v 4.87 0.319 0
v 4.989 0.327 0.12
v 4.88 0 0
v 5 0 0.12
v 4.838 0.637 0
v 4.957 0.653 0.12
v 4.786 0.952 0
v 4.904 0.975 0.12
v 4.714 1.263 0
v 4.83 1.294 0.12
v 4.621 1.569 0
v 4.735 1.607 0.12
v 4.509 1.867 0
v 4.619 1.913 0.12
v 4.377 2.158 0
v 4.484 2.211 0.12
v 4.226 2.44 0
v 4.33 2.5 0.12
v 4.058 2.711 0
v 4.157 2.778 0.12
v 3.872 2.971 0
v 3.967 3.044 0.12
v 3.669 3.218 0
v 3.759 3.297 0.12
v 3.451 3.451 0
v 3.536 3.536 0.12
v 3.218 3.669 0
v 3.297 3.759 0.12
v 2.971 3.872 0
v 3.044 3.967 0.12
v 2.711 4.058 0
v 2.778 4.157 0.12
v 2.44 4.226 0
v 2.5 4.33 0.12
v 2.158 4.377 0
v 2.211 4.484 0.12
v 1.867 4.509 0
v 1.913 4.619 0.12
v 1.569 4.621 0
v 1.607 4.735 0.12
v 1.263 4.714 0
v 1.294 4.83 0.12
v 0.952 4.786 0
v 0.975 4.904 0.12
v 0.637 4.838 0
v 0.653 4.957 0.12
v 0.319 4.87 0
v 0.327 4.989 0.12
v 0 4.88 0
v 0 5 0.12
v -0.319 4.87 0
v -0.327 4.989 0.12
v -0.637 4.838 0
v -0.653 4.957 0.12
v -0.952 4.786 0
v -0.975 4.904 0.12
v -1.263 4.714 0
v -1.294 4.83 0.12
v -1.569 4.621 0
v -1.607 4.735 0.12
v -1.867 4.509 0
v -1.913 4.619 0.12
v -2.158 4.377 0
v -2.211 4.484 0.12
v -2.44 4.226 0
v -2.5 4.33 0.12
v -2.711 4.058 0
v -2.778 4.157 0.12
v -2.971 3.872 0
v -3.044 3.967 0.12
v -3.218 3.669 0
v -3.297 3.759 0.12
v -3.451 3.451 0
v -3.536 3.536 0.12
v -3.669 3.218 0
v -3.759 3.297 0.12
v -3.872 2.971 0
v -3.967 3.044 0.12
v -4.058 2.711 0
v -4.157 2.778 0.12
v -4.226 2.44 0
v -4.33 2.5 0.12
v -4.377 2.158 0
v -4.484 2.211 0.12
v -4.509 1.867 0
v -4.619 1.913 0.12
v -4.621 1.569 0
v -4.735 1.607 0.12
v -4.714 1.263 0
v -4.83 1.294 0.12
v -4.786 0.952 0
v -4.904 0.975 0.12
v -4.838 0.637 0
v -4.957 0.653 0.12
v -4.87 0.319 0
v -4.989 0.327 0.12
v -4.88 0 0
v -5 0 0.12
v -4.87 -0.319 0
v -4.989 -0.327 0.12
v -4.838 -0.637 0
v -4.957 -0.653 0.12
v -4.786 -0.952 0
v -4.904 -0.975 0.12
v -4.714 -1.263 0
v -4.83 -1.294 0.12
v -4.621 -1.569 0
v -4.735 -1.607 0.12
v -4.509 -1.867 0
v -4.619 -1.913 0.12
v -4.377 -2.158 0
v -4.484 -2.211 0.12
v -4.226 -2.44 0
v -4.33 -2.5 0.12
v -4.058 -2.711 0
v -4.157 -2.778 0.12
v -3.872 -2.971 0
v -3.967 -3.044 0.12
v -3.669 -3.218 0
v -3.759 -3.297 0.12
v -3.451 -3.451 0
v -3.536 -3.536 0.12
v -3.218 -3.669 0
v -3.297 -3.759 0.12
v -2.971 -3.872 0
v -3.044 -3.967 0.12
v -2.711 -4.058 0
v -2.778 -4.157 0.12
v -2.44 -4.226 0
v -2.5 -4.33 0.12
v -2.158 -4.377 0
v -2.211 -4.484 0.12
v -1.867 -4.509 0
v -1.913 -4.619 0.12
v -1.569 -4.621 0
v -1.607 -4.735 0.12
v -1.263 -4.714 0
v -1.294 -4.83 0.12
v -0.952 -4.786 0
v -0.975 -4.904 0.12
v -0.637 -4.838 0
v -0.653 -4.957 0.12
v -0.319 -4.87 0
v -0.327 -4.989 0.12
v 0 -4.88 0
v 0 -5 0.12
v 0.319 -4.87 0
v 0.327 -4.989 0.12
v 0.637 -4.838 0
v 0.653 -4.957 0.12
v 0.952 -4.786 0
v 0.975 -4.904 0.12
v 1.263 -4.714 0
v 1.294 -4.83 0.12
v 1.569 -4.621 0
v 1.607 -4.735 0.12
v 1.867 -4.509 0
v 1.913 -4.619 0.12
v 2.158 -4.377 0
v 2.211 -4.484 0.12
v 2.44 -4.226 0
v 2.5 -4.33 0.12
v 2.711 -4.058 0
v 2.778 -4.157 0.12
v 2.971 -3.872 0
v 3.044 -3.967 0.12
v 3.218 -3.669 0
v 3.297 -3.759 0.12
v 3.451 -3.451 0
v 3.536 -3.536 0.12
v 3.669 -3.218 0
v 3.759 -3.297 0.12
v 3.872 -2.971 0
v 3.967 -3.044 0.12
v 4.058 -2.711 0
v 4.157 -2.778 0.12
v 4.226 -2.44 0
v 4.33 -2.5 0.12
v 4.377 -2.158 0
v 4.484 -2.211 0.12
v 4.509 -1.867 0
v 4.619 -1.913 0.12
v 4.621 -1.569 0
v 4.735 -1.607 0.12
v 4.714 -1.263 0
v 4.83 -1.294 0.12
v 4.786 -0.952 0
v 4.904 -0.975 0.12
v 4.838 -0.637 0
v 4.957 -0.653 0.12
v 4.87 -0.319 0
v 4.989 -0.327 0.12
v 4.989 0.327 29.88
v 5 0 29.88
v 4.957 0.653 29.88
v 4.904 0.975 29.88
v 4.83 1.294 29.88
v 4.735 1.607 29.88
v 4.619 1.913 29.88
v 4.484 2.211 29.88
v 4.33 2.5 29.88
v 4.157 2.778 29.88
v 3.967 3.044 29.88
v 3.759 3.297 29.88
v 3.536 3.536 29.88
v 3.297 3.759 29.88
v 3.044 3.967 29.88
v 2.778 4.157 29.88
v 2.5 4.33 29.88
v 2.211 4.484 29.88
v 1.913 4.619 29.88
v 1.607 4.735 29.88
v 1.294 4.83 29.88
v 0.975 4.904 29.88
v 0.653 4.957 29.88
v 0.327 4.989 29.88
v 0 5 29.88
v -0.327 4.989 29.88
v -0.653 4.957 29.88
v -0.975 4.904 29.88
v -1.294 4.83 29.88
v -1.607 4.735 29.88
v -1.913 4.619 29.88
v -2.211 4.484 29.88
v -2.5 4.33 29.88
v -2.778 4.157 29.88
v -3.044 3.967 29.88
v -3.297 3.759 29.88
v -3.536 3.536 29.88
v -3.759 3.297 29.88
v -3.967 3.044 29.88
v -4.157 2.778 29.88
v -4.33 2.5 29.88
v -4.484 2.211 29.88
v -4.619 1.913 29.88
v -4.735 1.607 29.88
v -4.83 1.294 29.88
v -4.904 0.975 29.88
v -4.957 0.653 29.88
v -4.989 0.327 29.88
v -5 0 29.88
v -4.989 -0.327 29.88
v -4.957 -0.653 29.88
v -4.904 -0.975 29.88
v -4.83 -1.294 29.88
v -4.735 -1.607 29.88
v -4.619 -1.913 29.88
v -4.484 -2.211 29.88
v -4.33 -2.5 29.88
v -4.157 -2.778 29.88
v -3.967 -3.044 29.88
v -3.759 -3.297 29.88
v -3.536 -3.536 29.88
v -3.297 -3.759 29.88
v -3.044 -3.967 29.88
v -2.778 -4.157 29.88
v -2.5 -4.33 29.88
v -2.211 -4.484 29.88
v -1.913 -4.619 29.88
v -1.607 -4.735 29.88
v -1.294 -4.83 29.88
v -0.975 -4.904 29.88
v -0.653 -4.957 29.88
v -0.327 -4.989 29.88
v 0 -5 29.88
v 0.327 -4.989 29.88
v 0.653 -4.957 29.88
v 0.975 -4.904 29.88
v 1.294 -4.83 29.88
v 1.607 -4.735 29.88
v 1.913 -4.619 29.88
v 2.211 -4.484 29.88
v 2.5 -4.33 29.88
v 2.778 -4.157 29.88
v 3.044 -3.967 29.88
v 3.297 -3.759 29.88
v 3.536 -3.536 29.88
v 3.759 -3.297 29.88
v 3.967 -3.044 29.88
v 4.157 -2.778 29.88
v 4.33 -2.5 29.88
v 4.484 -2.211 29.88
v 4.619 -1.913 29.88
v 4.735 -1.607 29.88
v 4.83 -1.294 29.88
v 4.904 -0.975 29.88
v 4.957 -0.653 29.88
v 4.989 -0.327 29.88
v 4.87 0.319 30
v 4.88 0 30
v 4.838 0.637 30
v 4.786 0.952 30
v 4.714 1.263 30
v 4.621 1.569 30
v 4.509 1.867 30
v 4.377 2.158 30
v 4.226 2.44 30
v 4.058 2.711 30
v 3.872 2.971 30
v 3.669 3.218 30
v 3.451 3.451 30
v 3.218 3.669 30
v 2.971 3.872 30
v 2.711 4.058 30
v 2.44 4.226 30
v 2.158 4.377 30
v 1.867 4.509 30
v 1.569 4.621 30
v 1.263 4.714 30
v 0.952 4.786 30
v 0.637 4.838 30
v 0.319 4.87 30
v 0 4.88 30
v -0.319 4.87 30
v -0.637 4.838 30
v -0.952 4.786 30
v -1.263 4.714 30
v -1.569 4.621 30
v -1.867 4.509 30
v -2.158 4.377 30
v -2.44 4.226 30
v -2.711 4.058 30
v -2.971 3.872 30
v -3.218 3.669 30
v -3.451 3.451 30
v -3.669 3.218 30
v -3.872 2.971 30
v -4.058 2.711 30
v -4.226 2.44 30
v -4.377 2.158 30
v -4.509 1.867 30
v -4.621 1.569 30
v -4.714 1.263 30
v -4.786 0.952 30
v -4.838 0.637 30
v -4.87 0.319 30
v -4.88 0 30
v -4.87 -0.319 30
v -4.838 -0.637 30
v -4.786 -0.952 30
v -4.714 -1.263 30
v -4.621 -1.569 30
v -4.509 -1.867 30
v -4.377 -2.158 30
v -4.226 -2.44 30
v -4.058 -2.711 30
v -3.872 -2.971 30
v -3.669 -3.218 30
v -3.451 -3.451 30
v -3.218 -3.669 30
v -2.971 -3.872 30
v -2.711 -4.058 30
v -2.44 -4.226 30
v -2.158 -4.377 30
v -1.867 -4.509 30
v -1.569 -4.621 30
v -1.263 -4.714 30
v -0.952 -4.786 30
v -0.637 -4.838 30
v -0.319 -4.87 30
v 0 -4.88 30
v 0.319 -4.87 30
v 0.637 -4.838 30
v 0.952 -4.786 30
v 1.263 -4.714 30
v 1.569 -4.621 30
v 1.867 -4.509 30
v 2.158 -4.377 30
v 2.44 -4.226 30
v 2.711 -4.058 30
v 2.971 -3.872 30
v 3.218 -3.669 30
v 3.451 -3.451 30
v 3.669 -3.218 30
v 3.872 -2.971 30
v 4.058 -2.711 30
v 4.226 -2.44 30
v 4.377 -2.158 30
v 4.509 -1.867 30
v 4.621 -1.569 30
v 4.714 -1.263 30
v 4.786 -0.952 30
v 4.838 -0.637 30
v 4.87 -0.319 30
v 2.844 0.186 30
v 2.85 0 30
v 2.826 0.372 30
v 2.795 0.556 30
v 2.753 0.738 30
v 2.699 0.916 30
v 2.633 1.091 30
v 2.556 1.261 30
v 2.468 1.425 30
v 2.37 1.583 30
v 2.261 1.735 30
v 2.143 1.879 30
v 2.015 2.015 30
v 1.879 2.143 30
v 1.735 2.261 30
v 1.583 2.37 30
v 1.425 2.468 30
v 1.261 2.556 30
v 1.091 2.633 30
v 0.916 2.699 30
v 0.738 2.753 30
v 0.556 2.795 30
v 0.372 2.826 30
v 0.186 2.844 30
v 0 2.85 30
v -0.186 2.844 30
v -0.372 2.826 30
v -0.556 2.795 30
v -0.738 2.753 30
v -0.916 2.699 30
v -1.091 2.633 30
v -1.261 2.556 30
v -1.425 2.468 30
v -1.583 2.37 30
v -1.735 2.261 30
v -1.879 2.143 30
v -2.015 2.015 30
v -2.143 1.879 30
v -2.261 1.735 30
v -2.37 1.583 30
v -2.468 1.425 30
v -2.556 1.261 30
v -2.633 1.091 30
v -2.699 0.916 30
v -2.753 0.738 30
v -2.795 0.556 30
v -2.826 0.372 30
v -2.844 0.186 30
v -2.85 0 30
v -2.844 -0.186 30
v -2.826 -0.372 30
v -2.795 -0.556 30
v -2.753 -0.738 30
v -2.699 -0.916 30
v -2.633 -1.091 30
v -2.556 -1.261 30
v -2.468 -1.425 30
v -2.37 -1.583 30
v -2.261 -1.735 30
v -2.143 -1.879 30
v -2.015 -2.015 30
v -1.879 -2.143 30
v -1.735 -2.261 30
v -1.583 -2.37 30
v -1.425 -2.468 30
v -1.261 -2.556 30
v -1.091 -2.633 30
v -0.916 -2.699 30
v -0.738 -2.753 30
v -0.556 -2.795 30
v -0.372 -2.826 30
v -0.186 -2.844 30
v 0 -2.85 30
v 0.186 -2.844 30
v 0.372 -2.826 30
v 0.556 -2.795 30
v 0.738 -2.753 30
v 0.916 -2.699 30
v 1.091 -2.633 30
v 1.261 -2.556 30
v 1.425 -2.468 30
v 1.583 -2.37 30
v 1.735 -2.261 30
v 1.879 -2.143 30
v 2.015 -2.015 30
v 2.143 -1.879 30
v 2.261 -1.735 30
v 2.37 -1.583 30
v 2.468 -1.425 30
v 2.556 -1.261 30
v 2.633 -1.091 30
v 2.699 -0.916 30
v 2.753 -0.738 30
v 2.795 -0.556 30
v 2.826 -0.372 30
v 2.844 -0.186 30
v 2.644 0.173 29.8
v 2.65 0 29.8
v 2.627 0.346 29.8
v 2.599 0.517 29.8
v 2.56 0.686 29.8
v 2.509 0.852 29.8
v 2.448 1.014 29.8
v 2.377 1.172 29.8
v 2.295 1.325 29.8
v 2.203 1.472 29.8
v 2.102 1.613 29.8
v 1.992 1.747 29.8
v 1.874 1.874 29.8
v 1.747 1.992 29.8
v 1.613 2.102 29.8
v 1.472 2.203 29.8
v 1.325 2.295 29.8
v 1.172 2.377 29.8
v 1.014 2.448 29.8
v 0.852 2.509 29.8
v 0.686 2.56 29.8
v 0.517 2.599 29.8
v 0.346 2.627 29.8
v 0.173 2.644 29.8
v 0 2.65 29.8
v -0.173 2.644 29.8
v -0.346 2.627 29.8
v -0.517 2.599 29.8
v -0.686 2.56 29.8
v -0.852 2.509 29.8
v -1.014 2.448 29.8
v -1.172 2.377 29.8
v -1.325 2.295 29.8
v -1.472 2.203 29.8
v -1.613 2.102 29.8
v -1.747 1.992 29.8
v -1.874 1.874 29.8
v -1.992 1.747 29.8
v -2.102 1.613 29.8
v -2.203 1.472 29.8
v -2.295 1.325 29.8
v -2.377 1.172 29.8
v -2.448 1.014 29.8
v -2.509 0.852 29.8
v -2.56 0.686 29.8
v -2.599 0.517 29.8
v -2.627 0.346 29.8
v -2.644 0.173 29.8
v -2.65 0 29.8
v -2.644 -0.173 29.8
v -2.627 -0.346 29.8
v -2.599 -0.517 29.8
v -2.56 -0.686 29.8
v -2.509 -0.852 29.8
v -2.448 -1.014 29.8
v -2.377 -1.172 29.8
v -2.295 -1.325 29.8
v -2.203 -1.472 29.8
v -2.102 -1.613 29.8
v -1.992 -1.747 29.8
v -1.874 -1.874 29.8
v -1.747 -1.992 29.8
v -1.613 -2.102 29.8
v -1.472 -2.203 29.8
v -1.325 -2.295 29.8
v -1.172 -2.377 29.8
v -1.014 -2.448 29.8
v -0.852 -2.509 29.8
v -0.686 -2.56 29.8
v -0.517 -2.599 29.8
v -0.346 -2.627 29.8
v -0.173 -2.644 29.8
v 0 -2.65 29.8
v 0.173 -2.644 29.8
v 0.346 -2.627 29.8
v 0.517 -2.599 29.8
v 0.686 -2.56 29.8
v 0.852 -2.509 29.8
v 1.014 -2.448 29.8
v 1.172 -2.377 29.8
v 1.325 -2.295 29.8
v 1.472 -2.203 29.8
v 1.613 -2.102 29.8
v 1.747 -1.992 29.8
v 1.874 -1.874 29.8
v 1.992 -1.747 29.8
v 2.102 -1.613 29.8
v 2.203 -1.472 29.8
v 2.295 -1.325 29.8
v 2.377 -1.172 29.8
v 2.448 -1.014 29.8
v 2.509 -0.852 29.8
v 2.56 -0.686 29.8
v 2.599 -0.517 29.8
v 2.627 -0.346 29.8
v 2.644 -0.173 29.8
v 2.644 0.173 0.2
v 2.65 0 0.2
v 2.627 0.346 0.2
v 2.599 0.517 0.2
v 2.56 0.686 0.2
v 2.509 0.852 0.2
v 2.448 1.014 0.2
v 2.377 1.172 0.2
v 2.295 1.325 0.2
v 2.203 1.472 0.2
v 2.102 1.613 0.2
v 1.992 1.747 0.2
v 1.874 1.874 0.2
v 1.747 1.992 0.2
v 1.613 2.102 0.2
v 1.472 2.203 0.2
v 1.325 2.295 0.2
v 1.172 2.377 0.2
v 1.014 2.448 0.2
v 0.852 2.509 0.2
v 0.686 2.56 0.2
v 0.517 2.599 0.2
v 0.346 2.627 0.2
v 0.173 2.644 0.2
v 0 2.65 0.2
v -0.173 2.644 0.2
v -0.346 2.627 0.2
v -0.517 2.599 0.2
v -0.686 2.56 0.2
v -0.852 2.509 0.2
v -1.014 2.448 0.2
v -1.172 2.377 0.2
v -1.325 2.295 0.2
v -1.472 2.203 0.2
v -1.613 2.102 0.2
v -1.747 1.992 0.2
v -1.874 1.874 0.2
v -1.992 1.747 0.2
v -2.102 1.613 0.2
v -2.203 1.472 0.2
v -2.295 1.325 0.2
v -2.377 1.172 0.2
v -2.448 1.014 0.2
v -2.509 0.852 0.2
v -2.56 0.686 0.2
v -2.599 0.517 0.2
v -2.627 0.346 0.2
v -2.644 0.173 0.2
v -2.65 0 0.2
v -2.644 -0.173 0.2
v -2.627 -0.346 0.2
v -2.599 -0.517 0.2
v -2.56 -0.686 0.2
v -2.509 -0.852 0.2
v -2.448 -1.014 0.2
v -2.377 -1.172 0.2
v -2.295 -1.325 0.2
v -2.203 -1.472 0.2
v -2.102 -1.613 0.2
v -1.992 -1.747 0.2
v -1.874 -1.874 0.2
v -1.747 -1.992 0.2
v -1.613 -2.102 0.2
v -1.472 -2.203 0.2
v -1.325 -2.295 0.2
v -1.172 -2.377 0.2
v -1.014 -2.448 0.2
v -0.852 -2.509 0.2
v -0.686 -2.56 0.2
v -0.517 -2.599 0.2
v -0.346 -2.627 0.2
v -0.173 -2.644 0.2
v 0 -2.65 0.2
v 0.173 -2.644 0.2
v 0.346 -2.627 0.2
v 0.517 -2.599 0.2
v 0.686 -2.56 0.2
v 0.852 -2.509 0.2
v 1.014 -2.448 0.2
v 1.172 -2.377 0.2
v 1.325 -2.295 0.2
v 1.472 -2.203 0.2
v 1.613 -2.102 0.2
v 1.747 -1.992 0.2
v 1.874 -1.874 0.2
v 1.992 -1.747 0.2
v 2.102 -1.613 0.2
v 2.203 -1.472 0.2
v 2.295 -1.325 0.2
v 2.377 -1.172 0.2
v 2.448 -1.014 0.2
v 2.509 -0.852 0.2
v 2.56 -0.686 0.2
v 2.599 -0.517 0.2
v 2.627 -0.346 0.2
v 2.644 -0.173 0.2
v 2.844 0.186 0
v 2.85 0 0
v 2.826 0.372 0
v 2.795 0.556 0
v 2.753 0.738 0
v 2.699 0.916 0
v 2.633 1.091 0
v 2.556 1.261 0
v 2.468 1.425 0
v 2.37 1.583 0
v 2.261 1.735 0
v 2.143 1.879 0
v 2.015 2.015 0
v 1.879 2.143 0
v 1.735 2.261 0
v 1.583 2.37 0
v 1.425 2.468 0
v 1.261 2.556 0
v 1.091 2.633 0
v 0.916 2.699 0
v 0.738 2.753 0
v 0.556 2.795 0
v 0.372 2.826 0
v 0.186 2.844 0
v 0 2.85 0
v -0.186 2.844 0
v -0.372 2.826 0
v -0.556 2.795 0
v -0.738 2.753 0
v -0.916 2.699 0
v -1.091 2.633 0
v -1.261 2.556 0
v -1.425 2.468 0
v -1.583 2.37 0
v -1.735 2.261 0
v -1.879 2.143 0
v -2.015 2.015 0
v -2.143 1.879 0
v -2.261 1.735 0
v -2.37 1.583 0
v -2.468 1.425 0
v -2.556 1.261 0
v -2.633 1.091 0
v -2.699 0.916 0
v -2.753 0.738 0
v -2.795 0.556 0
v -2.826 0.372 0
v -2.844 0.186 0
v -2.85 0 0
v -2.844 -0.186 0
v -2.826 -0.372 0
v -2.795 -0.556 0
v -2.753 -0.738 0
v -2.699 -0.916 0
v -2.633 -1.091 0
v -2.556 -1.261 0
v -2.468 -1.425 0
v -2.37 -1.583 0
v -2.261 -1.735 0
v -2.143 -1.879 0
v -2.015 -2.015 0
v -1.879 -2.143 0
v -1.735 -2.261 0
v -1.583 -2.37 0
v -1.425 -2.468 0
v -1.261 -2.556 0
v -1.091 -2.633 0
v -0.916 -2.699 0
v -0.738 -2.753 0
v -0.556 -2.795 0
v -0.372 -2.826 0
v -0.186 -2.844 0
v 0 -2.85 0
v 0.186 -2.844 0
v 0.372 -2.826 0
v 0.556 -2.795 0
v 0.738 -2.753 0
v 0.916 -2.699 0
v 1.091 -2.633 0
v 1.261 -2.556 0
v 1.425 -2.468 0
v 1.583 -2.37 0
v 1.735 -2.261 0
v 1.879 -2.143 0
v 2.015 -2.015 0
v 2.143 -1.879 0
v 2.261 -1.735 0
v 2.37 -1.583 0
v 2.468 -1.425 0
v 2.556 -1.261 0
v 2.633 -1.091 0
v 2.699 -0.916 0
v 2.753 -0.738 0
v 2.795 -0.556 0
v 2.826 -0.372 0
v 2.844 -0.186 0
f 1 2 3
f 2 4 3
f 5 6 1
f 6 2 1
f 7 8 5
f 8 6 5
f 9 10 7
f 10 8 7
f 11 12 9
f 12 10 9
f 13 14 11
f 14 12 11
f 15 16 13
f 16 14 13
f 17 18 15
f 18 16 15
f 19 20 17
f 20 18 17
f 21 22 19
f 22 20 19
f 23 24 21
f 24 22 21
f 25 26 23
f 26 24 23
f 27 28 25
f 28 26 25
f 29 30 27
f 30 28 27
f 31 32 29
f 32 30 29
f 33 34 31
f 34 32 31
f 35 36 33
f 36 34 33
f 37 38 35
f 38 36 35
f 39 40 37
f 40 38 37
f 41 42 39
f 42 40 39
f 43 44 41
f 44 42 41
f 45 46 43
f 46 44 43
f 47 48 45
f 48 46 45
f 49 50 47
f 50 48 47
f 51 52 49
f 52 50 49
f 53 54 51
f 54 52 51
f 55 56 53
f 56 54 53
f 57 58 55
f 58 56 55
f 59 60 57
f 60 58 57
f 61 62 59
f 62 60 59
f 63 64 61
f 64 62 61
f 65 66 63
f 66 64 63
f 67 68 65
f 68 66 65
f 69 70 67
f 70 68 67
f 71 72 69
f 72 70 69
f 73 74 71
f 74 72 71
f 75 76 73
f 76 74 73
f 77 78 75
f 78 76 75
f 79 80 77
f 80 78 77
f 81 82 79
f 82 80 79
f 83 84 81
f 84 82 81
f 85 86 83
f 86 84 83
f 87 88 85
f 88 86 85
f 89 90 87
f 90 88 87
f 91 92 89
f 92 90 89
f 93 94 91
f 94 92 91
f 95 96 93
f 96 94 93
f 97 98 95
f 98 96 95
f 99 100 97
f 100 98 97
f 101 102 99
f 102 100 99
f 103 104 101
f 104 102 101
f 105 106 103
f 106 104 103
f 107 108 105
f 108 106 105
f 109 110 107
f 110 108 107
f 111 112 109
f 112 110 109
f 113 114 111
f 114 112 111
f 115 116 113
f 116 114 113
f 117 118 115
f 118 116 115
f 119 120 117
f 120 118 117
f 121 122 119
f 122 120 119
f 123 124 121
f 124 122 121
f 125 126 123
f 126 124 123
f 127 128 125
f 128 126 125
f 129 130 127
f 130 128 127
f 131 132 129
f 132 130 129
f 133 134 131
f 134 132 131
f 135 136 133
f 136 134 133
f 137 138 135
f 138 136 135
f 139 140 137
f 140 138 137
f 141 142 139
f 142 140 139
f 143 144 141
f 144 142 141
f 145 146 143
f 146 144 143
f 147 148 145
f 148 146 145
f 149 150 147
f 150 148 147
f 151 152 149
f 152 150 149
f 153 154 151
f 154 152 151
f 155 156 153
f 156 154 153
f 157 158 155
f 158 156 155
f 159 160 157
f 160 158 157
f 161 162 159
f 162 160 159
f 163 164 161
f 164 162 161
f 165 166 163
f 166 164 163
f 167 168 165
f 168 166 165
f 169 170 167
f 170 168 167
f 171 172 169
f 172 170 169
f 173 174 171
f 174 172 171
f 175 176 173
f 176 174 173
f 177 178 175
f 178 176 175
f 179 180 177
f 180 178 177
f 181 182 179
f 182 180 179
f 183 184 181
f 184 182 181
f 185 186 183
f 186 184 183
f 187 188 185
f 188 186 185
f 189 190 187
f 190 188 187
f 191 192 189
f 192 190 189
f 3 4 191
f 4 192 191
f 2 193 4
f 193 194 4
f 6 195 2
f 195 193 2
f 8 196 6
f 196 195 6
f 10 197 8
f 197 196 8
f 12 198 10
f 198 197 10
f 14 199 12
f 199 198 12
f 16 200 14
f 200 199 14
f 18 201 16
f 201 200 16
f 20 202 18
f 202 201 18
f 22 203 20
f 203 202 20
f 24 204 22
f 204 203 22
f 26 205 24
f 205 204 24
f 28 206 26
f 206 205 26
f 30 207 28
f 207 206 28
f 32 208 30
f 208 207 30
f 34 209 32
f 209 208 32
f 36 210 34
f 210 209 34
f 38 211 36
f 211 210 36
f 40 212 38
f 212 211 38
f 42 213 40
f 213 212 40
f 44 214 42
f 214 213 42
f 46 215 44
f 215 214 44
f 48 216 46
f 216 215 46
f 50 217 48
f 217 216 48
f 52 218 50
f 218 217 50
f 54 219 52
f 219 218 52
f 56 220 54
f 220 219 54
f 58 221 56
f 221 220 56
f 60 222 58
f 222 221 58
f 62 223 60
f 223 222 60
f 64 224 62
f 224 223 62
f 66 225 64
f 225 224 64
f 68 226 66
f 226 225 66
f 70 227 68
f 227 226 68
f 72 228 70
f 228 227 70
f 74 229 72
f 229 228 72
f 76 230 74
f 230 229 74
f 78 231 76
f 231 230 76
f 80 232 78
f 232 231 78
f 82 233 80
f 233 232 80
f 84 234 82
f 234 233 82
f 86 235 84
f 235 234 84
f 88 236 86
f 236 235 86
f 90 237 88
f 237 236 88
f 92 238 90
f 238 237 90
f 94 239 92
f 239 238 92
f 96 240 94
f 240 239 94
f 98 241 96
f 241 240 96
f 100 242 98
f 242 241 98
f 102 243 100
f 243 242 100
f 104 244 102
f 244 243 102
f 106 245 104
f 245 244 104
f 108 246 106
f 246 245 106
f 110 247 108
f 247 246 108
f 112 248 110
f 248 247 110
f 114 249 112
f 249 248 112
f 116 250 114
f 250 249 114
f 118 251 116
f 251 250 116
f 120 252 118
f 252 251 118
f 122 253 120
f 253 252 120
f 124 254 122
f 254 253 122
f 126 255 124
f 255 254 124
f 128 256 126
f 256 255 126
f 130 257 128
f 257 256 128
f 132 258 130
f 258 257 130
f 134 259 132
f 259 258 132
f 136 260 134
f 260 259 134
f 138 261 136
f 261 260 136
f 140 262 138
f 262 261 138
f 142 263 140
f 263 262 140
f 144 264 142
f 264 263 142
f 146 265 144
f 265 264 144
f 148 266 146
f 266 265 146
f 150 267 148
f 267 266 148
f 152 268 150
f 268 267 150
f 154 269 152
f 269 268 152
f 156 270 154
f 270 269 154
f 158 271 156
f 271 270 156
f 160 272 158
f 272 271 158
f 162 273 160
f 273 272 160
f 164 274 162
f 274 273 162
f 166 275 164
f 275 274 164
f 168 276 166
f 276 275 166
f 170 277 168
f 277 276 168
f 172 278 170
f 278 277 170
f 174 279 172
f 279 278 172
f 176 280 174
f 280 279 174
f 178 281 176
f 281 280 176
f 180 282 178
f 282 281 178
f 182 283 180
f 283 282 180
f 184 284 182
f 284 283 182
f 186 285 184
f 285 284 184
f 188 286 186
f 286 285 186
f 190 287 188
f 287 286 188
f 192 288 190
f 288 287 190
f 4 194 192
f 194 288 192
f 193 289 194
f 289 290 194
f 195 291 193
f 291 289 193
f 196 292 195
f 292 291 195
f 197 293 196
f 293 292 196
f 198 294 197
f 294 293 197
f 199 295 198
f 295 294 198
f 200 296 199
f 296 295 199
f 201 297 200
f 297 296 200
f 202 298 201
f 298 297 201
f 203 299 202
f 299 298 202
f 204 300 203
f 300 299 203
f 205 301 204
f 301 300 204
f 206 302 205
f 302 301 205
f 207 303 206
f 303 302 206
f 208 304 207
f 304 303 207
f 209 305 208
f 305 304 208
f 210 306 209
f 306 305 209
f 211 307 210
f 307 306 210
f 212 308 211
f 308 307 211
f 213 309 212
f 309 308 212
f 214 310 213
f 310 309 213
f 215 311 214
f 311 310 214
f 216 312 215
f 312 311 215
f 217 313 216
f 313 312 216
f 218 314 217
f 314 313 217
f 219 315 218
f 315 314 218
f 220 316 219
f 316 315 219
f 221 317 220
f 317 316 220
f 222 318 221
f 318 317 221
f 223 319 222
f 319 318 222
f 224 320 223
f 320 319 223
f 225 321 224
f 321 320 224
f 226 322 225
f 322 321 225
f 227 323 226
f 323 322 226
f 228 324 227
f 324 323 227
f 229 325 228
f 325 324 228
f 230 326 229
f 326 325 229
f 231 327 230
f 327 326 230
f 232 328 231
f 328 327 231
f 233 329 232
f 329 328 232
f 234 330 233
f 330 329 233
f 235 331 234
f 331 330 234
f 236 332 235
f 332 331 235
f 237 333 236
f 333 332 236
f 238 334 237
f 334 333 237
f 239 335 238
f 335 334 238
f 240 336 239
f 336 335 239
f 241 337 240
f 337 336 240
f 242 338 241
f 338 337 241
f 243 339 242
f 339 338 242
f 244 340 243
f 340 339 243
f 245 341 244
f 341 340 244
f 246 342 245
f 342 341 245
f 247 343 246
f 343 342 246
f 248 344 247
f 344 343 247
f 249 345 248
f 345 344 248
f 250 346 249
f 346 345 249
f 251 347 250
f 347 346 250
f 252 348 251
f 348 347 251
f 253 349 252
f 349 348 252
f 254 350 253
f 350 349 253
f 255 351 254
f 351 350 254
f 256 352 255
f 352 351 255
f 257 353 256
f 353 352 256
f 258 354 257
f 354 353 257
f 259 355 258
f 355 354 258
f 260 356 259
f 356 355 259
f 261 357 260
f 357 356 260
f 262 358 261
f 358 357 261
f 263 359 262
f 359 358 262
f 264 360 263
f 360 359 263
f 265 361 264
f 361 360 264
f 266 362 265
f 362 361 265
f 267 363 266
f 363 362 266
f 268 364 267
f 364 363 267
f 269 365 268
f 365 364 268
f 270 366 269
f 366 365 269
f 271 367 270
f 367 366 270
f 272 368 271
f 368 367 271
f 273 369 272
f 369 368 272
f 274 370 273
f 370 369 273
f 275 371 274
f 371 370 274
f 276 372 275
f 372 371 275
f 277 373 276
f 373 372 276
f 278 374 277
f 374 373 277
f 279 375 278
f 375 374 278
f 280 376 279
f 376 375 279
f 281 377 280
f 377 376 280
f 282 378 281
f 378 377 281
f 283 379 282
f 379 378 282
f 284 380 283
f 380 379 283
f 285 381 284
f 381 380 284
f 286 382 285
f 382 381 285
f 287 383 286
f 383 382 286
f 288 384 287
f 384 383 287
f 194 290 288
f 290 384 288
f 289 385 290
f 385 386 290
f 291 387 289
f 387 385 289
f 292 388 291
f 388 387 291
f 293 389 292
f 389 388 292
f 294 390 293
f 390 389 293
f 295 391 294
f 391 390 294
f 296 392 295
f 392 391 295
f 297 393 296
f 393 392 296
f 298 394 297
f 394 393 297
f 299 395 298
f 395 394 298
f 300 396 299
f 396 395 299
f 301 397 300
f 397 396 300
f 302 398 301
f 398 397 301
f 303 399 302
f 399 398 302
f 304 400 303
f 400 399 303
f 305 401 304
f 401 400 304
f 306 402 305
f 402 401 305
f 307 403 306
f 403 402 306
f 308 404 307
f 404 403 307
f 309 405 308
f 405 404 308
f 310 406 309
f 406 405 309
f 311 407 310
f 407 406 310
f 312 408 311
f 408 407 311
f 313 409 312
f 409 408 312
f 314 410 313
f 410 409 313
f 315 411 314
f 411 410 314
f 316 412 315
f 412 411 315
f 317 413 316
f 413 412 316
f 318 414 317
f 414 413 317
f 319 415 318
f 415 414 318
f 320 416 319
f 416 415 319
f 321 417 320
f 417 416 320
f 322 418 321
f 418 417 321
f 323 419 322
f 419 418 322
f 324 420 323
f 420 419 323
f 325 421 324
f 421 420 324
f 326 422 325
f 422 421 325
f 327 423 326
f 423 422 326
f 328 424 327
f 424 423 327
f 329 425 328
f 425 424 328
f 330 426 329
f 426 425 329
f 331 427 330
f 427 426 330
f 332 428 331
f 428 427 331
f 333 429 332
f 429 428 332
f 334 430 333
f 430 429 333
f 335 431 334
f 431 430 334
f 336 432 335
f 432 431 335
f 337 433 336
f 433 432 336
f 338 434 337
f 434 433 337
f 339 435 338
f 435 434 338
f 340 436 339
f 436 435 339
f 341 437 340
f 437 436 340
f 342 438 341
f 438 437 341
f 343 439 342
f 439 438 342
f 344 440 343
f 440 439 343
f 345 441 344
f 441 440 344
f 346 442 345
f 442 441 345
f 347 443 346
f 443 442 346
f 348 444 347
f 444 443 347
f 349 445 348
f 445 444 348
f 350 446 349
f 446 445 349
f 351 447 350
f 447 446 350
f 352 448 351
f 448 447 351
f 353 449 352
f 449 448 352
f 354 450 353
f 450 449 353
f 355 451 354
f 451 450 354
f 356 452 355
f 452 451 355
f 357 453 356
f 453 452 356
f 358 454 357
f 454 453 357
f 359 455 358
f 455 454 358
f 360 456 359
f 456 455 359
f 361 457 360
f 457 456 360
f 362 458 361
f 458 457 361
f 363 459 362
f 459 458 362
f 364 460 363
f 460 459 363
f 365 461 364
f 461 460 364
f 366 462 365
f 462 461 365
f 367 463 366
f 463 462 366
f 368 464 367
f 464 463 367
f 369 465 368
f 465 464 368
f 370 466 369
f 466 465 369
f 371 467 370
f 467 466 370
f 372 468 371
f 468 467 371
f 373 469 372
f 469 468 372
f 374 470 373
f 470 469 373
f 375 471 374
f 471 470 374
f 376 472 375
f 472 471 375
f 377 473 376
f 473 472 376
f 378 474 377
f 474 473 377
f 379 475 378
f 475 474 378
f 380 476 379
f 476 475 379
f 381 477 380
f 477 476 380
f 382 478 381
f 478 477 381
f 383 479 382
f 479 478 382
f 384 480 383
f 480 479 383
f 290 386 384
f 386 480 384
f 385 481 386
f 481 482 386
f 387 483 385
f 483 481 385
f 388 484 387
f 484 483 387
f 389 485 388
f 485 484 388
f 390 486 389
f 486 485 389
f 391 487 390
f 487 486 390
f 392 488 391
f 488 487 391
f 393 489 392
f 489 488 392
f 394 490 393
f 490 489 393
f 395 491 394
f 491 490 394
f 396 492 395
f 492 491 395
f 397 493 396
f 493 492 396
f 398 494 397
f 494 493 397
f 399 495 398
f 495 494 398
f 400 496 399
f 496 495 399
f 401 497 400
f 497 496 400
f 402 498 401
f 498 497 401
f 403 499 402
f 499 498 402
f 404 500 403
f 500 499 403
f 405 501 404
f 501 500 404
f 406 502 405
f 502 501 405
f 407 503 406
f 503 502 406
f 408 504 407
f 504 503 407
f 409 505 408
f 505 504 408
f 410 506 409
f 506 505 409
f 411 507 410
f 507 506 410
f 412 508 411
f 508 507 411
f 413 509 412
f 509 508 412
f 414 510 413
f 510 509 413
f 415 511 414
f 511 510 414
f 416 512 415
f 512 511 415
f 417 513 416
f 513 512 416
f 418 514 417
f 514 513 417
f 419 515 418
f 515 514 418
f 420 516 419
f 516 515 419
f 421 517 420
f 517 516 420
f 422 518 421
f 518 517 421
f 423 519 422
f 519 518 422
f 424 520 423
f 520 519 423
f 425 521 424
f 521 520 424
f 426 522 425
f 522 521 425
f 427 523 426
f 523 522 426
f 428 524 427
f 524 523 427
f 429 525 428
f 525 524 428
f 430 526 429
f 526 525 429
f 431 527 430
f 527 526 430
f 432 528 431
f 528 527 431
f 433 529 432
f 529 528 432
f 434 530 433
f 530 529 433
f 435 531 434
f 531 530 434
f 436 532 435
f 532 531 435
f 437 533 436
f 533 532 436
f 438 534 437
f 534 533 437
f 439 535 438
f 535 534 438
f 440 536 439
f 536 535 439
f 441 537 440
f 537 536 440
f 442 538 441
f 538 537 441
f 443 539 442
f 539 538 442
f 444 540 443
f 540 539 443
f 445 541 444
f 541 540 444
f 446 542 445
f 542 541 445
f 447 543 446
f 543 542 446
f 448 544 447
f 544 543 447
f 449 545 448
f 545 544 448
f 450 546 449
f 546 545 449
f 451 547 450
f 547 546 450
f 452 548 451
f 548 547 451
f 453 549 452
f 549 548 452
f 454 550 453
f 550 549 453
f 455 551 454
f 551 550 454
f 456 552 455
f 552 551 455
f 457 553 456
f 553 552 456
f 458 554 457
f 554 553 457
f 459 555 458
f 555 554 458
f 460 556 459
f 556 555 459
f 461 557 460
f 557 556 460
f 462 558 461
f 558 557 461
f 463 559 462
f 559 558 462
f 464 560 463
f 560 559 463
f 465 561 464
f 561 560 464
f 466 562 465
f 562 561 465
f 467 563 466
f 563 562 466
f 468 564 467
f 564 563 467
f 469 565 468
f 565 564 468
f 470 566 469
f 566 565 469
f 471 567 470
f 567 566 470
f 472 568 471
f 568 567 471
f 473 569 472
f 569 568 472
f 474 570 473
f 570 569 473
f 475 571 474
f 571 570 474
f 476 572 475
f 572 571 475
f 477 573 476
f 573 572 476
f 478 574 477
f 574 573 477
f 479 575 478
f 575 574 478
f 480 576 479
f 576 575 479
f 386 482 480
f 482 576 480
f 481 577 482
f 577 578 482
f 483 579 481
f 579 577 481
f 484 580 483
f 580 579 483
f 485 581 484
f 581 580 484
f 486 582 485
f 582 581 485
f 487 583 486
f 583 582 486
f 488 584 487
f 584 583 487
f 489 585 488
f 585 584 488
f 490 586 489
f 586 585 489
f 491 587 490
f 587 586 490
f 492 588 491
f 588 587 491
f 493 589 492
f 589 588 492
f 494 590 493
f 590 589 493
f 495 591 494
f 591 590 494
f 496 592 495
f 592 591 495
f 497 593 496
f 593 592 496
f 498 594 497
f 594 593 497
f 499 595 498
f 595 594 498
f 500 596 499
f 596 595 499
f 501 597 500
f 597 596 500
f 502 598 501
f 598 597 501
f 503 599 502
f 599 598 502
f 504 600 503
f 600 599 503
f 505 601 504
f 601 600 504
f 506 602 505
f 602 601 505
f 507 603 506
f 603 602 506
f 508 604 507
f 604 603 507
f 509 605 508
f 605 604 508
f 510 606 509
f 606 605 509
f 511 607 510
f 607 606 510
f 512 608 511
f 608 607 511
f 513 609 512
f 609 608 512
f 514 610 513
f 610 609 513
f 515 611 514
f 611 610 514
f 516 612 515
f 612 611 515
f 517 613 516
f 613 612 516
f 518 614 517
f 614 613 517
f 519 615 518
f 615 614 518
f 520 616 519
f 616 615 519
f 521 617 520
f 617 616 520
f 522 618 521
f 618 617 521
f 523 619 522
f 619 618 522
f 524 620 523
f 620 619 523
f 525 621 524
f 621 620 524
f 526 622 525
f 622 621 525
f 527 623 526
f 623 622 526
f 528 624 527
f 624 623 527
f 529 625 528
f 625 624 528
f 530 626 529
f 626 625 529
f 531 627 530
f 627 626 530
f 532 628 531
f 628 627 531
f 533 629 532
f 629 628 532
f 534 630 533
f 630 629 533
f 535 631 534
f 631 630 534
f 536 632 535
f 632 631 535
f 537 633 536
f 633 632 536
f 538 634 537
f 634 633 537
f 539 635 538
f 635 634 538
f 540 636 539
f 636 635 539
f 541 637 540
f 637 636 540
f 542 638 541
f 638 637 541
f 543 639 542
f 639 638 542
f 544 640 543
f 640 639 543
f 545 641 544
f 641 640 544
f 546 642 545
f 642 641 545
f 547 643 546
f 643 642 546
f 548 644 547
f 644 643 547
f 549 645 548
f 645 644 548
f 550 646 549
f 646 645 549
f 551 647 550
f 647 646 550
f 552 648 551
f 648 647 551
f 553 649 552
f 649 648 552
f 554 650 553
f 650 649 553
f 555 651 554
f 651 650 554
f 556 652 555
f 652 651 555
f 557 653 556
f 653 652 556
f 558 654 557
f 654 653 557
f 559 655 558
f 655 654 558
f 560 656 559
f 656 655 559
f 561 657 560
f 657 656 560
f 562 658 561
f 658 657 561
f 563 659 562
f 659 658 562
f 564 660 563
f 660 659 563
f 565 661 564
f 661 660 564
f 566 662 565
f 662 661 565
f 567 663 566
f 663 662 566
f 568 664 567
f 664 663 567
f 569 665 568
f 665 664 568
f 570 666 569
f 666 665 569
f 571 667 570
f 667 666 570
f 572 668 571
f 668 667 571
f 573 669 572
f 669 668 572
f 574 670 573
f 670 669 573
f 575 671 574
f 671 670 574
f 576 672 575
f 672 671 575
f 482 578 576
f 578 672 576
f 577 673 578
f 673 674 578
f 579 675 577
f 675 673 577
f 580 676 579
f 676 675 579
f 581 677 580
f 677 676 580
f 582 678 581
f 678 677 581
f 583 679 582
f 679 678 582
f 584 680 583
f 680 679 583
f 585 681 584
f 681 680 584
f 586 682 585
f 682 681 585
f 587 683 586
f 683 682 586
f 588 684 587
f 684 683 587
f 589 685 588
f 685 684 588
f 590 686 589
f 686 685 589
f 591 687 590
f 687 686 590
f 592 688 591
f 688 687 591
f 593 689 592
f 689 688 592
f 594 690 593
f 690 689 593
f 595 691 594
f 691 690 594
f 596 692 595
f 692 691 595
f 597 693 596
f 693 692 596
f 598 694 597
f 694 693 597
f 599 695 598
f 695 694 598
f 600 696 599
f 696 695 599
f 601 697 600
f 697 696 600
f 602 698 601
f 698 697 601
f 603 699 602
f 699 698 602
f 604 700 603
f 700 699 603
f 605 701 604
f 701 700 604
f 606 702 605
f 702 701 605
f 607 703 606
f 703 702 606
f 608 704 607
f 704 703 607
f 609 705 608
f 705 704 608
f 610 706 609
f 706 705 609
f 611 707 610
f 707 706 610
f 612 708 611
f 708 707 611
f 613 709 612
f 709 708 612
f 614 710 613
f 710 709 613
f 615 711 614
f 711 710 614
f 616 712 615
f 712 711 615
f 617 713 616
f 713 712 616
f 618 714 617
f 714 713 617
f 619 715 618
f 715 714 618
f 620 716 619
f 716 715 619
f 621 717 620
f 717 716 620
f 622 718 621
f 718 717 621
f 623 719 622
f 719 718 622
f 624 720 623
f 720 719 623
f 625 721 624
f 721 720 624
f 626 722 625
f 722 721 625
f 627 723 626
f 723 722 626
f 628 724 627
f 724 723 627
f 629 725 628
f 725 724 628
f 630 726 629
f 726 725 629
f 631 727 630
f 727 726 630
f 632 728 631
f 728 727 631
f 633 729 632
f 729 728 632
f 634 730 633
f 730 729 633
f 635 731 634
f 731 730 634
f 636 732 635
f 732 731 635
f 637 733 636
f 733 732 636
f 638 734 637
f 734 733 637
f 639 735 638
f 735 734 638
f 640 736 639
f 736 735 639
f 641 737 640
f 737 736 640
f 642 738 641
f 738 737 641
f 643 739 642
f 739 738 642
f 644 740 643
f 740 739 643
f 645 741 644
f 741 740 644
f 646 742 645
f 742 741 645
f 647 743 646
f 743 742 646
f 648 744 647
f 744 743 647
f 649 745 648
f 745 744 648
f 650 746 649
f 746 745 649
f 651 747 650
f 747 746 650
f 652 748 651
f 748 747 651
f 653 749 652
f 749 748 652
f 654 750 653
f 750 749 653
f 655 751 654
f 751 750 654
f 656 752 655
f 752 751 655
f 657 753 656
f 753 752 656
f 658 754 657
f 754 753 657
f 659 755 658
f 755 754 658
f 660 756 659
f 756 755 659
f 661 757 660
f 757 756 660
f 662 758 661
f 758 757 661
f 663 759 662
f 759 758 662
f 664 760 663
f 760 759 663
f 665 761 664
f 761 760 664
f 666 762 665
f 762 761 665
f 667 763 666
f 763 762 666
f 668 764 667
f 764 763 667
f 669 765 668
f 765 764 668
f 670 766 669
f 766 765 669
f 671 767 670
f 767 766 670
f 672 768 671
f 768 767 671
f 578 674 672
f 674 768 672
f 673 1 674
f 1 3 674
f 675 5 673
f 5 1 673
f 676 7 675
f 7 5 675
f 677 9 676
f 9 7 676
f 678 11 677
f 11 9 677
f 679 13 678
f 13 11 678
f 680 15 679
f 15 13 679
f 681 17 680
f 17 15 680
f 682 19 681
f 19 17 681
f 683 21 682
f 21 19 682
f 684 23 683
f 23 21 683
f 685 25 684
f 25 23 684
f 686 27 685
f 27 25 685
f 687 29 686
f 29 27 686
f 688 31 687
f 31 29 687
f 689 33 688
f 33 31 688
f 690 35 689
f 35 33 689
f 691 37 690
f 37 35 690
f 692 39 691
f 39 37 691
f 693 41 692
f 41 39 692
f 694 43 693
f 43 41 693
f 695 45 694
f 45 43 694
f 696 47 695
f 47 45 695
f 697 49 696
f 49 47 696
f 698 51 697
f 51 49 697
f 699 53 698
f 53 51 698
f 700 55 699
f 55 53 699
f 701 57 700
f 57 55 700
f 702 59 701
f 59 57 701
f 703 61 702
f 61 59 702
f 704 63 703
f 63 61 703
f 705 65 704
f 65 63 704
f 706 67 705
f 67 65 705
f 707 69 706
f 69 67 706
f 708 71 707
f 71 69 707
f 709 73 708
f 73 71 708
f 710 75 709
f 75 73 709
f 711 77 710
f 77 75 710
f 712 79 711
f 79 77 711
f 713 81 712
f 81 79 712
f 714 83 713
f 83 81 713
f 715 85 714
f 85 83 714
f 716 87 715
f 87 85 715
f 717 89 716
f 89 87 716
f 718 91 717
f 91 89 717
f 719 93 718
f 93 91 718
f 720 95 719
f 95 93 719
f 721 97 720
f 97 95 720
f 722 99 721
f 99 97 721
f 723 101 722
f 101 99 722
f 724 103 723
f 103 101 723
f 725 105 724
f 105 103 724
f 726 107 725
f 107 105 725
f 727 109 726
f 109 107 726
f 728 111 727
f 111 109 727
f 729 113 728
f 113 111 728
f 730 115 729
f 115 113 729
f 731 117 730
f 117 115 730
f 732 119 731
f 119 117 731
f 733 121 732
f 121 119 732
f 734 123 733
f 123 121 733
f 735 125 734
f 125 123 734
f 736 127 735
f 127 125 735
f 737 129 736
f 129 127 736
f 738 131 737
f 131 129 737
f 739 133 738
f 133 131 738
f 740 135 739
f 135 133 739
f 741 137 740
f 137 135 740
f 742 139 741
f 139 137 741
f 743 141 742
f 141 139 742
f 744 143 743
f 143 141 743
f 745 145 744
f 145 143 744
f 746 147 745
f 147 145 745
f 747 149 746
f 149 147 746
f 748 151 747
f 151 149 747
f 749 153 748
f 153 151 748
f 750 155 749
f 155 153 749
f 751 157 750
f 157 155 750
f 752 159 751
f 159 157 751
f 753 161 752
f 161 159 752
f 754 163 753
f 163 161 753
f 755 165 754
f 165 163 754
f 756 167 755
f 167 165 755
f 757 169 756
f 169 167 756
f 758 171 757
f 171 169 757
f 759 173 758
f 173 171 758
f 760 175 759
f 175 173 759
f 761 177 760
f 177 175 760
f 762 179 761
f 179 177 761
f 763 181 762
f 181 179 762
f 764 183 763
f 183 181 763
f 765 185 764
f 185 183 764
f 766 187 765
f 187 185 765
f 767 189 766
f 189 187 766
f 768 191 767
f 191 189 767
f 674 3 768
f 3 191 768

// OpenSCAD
// OOMP generic catalogue model; units: mm.
// Stud length is additional to body depth. Tapping depths are model assumptions.
variant = "full"; // [full, display]
family = "spacer";
connection_type = "plain";
depth_mm = 30;
stud_length_mm = 0;
tapped_depth_mm = 0;
bore_mm = 5.3;
outer_diameter_mm = 10;
across_flats_mm = 6;
thread_nominal_diameter_mm = 3;
thread_pitch_mm = 0.5;
edge_chamfer_mm = 0.12;
mouth_chamfer_mm = 0.2;
angular_segments = 96;
samples_per_pitch = 16;

// Boundary travels up the outside, then down any tapped/plain bore.
// Equal-height rings at shoulders form the annular shoulder faces.
n = angular_segments;
threaded = family == "standoff";
has_stud = connection_type == "stud_to_tapped" || connection_type == "stud_to_stud";
two_studs = connection_type == "stud_to_stud";
through = !threaded || connection_type == "tapped_to_tapped";
pitch = thread_pitch_mm;
diameter = threaded ? thread_nominal_diameter_mm : bore_mm;
minor = diameter - 5*sqrt(3)*pitch/8;
transition = mouth_chamfer_mm + (threaded ? 5*sqrt(3)*pitch/16 : 0);
tip_chamfer = mouth_chamfer_mm + 17*sqrt(3)*pitch/48;
function sorted(v) = len(v)<=1 ? v : let(p=v[0])
    concat(sorted([for(x=v) if(x<p-1e-8) x]), [p], sorted([for(x=v) if(x>p+1e-8) x]));
function reverse(v) = [for(i=[len(v)-1:-1:0]) v[i]];
function theta(i) = i*360/n;
function fract(x) = x-floor(x);
function phase_distance(i,z) = abs(fract(z/pitch-theta(i)/360+0.5)-0.5);
function thread_r(i,z) = minor/2 + min(5*sqrt(3)*pitch/16,
    max(0,(phase_distance(i,z)-0.125)*pitch*sqrt(3)));
function stud_r(i,z,tip) = min(diameter/2 - (variant=="full" ?
    min(17*sqrt(3)*pitch/48,max(0,(phase_distance(i,z)-0.0625)*pitch*sqrt(3))) : 0),
    diameter/2-tip_chamfer+abs(z-tip));
function body_r(i,z) = (threaded ? across_flats_mm/2/cos(theta(i)%60-30) : outer_diameter_mm/2)
    - max(0,edge_chamfer_mm-min(z,depth_mm-z));
function bore_r(i,z) = max(threaded ? (variant=="full" ? thread_r(i,z) : minor/2) : diameter/2,
    diameter/2+mouth_chamfer_mm-(through ? min(z,depth_mm-z) : depth_mm-z));
function stud_z(a,b,tip) = let(count=variant=="full" ? ceil(stud_length_mm/pitch*samples_per_pitch) : 1)
    sorted(concat([for(i=[0:count]) a+(b-a)*i/count], [tip==a ? tip+tip_chamfer : tip-tip_chamfer]));
body_z = sorted([0,edge_chamfer_mm,depth_mm-edge_chamfer_mm,depth_mm]);
low = through ? 0 : depth_mm-tapped_depth_mm;
count = threaded && variant=="full" ? ceil((depth_mm-low)/pitch*samples_per_pitch) : 1;
bore_z = two_studs ? [] : reverse(sorted(concat(
    [for(i=[0:count]) low+(depth_mm-low)*i/count],
    [depth_mm-mouth_chamfer_mm,depth_mm-transition],
    through ? [mouth_chamfer_mm,transition] : [])));
// Ring descriptors: [height, kind, tip]. Kind: 0 body, 1 stud, 2 bore.
rings = concat(
    has_stud ? [for(z=stud_z(-stud_length_mm,0,-stud_length_mm)) [z,1,-stud_length_mm]] : [],
    [for(z=body_z) [z,0,0]],
    two_studs ? [for(z=stud_z(depth_mm,depth_mm+stud_length_mm,depth_mm+stud_length_mm)) [z,1,depth_mm+stud_length_mm]] : [],
    [for(z=bore_z) [z,2,0]]);
function radius(i,ring) = ring[1]==0 ? body_r(i,ring[0]) :
    ring[1]==1 ? stud_r(i,ring[0],ring[2]) : bore_r(i,ring[0]);
points = concat([for(ring=rings) for(i=[0:n-1])
    [radius(i,ring)*cos(theta(i)),radius(i,ring)*sin(theta(i)),ring[0]]],
    through ? [] : [[0,0,rings[0][0]],[0,0,rings[len(rings)-1][0]]]);
center = len(rings)*n;
last = (len(rings)-1)*n;
// OpenSCAD winding is opposite to STL winding.
faces = concat(
    [for(j=[0:len(rings)-(through ? 1 : 2)]) for(i=[0:n-1]) each
        let(a=j*n+i,b=j*n+(i+1)%n,c=((j+1)%len(rings))*n+(i+1)%n,d=((j+1)%len(rings))*n+i)
        [[a,c,b],[a,d,c]]],
    through ? [] : [for(i=[0:n-1]) each let(k=(i+1)%n)
        [[center,i,k],[center+1,last+k,last+i]]]);
assert(family=="spacer" || family=="standoff");
assert(!threaded || connection_type=="tapped_to_tapped" || has_stud);
assert(depth_mm>0 && diameter>0 && pitch>0);
assert(variant=="full" || variant=="display");
assert(n>=24 && n%12==0 && samples_per_pitch>=8);
assert(mouth_chamfer_mm>0 && mouth_chamfer_mm<depth_mm/2);
assert(edge_chamfer_mm>=0 && edge_chamfer_mm<depth_mm/2);
assert(diameter+4*max(mouth_chamfer_mm,edge_chamfer_mm) < (threaded ? across_flats_mm : outer_diameter_mm));
assert(!has_stud || stud_length_mm>2*mouth_chamfer_mm);
assert(!through || !threaded || 2*transition<depth_mm);
assert(connection_type!="stud_to_tapped" || (tapped_depth_mm>transition && tapped_depth_mm<depth_mm));
color([0.86,0.85,0.81]) polyhedron(points=points,faces=faces,convexity=20);
